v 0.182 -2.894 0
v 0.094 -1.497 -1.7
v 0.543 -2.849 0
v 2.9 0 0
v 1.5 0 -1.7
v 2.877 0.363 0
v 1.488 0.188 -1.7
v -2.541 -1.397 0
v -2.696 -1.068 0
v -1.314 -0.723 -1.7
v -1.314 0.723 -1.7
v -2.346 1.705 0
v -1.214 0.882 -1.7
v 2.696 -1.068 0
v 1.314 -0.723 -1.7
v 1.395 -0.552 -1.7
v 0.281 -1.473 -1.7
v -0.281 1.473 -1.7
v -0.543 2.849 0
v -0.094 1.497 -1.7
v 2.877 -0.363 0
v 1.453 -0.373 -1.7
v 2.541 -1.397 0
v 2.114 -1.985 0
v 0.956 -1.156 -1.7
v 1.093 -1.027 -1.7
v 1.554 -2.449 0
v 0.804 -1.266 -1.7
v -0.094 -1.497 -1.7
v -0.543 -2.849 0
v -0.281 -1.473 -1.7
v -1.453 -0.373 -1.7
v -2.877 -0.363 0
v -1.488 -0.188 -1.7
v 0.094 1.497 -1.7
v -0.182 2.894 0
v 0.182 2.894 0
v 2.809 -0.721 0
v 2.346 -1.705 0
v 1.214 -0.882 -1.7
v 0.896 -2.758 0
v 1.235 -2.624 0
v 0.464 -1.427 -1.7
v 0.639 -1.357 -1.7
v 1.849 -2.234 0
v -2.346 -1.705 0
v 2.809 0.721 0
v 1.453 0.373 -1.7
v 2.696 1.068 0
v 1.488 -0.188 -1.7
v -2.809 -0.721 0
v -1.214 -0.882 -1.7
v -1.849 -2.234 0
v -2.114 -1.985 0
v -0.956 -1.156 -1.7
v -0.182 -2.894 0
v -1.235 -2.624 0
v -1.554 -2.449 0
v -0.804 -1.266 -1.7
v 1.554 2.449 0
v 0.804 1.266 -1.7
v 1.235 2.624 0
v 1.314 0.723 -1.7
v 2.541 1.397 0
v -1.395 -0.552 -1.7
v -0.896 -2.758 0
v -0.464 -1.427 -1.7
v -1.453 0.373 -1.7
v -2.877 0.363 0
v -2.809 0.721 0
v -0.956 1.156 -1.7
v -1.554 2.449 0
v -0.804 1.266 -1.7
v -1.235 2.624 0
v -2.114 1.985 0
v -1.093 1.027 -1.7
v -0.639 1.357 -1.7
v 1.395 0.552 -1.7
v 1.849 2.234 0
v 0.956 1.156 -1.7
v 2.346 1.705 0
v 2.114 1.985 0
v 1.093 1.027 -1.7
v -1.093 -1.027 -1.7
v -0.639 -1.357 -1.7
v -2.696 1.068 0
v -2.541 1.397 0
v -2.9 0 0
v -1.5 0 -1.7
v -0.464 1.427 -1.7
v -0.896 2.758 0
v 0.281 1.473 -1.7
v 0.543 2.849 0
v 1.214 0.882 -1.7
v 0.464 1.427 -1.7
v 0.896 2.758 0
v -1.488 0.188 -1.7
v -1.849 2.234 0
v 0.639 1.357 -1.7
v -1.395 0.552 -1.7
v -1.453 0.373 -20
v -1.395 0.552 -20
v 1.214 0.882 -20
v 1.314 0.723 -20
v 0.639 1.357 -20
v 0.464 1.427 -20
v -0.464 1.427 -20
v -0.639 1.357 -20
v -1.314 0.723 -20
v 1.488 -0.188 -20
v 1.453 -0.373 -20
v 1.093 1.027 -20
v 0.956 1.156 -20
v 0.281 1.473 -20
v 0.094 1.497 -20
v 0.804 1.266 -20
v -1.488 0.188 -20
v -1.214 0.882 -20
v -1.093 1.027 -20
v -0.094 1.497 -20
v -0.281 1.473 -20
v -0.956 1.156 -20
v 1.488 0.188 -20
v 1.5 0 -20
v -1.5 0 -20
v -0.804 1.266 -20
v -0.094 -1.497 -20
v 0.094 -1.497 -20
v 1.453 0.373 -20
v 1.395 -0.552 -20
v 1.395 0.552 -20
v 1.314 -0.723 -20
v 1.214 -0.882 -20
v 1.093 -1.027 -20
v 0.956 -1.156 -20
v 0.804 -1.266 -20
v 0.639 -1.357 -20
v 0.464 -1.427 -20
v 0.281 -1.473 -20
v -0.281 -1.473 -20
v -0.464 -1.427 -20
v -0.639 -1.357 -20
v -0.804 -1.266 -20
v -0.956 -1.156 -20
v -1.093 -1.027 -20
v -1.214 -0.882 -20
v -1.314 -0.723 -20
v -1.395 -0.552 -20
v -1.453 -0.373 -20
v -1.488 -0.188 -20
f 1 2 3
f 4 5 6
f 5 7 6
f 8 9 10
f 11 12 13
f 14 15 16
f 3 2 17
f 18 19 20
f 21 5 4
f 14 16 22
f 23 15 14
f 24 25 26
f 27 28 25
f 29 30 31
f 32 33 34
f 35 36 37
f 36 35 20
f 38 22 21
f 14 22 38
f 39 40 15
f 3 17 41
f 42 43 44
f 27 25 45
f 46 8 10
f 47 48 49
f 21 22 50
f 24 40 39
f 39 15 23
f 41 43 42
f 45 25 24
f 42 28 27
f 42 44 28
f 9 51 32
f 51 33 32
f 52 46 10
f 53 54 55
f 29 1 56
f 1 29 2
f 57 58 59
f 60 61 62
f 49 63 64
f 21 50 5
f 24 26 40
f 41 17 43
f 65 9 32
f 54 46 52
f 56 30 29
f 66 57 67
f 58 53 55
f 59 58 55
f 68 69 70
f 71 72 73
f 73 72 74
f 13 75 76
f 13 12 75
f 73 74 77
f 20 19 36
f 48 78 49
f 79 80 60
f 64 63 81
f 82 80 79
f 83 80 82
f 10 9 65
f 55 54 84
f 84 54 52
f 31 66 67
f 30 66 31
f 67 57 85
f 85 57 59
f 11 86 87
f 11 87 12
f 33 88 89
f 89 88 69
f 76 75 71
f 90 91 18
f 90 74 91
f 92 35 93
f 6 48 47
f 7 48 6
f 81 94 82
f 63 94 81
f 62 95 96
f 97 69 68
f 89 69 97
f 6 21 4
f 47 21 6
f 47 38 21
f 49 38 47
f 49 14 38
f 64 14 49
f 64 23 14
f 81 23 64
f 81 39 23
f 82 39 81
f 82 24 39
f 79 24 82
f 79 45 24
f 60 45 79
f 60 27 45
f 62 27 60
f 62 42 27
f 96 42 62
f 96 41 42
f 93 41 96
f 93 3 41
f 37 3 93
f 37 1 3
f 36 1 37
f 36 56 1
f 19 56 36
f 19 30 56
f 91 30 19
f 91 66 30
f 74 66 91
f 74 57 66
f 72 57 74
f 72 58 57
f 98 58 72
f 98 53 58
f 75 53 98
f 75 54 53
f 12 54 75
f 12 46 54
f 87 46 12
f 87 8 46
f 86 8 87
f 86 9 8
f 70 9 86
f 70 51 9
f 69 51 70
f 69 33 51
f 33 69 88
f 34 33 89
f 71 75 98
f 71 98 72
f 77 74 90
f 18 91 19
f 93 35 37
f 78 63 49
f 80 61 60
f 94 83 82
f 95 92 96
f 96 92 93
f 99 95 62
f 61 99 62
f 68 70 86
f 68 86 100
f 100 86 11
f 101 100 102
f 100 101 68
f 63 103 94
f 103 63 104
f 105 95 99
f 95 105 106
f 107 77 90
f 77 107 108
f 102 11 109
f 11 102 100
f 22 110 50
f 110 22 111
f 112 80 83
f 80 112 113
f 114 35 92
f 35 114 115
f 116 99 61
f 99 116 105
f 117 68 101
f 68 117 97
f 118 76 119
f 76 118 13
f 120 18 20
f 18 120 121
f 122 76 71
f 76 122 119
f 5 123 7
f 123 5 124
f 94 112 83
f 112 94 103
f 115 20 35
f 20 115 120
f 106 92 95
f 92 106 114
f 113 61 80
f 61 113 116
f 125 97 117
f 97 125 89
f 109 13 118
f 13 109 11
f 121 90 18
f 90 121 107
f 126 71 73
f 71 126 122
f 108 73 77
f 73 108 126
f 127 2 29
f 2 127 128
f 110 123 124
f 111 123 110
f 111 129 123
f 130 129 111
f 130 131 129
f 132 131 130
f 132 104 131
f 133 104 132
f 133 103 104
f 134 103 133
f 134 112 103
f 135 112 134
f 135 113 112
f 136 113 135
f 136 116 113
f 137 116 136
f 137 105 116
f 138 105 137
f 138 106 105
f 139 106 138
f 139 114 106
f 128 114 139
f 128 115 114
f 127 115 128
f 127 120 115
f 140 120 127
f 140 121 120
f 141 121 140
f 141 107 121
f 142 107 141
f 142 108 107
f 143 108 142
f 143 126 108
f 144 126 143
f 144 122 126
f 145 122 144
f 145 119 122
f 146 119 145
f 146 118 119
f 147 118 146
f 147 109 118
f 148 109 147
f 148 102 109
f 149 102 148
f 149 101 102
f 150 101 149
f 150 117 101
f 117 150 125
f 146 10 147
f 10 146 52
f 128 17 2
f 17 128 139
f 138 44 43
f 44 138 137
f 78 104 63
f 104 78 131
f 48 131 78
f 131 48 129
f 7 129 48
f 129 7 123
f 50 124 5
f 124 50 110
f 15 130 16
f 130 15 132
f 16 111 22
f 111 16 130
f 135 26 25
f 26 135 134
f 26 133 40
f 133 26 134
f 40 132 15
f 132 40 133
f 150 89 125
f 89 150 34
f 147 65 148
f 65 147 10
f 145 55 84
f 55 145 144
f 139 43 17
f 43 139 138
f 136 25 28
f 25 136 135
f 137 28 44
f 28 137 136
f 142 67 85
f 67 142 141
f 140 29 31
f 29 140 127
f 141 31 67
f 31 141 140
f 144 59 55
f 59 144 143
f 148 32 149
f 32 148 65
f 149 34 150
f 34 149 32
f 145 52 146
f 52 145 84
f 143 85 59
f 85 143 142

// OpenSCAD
// Generated by SolidPython 1.1.3 on 2023-03-13 21:06:12
$fn = 50;


difference() {
	union() {
		translate(v = [0, 0, -1.7000000000]) {
			rotate(a = [0, 0, 0]) {
				cylinder(h = 1.7000000000, r1 = 1.5000000000, r2 = 2.9000000000);
			}
		}
		translate(v = [0, 0, -20]) {
			rotate(a = [0, 0, 0]) {
				cylinder(h = 20, r = 1.5000000000);
			}
		}
	}
	union();
}
/***********************************************
*********      SolidPython code:      **********
************************************************
 
from solid import *
import os
import subprocess

import oomB

import opsc_library_gen

mode = "laser"
#mode = "3d_print"

defined_objects = {}

radius_dict = {}
countersunk_dict = {}


def set_mode(m):
    global mode
    mode = m
    radius_dict['M6'] = 6.5/2
    radius_dict['M3'] = 3.3/2
    if mode == "laser":
        radius_dict['M6'] = 6/2
        radius_dict['M3'] = 3/2

    countersunk_dict['M3'] = {}
    countersunk_dict['M3']['little_rad'] = radius_dict['M3']
    countersunk_dict['M3']['big_rad'] = (5.5+0.6)/2
    if mode == "laser":
        countersunk_dict['M3']['big_rad'] = (4.75+0.6)/2
        countersunk_dict['M3']['little_rad'] = (4.75+0.6)/2

    countersunk_dict['M3']['height'] = 1.7


def opsc_make_object(filename, objects, save_type="none",resolution=50, layers = 1, tilediff = 200, mode="laser", overwrite=True):
    if overwrite or not os.path.exists(filename):
        set_mode(mode)
        save_type = save_type.lower()
        os.makedirs(os.path.dirname(filename), exist_ok=True)
        final_object = opsc_get_object(objects, mode = mode)
        # Save the final object to the specified filename    
        scad_render_to_file(final_object, filename, file_header='$fn = %s;' % resolution, include_orig_code=True)
        if save_type == "all":
            saveToAll(filename)
        elif save_type == "dxf":
            saveToDxf(filename)
        if mode == "laser":
            filename_laser = filename.replace(".scad","-flat.scad")
            scad_render_to_file(getLaser(final_object, layers=layers, tilediff=tilediff), filename_laser, file_header='$fn = %s;' % resolution, include_orig_code=True)
            if save_type == "all":
                saveToAll(filename_laser)
            elif save_type == "dxf":
                saveToDxf(filename_laser)


def opsc_get_object(objects, mode = "laser"):
    # Create the solidpython objects only include the positive objects and if they don't have inclusion or their inclusion is either all or mode
    # Initialize an empty list to store the results
    positive_objects = []

    # Iterate over the "objects" list
    for obj in objects:
        # Check if the current object has a "type" key with a value of "positive"
        if obj['type'] == 'positive':
            # Check if the current object has an "inclusion" key and its value matches "mode",
            # or if the current object does not have an "inclusion" key at all
            if not 'inclusion' in obj or obj['inclusion'] == "all" or obj['inclusion'] == mode:
                # Call the "get_opsc_item" function with the current object as an argument
                opsc_item = get_opsc_item(obj)
                # Add the result to the "positive_objects" list
                positive_objects.append(opsc_item)
# Initialize an empty list to store the results
    negative_objects = []

    # Iterate over the "objects" list
    for obj in objects:
        # Check if the current object has a "type" key with a value of "negative"
        if obj['type'] == 'negative':
            # Check if the current object has an "inclusion" key and its value matches "mode",
            # or if the current object does not have an "inclusion" key at all
            if not 'inclusion' in obj or obj['inclusion'] == "all" or obj['inclusion'] == mode:
                # Call the "get_opsc_item" function with the current object as an argument
                opsc_item = get_opsc_item(obj)
                # Add the result to the "negative_objects" list
                negative_objects.append(opsc_item)
    
    #positive_objects = [get_opsc_item(obj) for obj in objects if obj['type'] == 'positive']
    #negative_objects = [get_opsc_item(obj) for obj in objects if obj['type'] == 'negative']
    # Union the positive objects
    positive_object = union()(*positive_objects)
    # Union the negative objects
    negative_object = union()(*negative_objects)
    # Create the final object by subtracting the negative objects from the positive objects
    return difference()(positive_object, negative_object)

def get_opsc_item(params):
    # A dictionary to map radius string values to numerical values
    #radius_dict = {'small': 5, 'medium': 10, 'large': 15}
    # An array of function names for basic shapes
    basic_shapes = ['cube', 'sphere', 'cylinder']
    
    # An array of function names for other shapes
    other_shapes = ['hole', 'slot', 'rounded_rectangle', 'countersunk', 'polyg']
    


    # Convert radius to r if present, and remove radius from the params dictionary
    if 'radius' in params:
        if isinstance(params['radius'], str):
            # Use the radius_dict to map the radius string value to a numerical value
            params['r'] = radius_dict[params['radius']]
        else:
            params['r'] = params['radius']
        del params['radius']
    

    # Check if the object type is a basic shape
    if params['shape'] in basic_shapes:
        # Remove shape and unexpected dictionary values
        allowed_keys = {'size', 'r', 'r1', 'r2', 'd', 'h', 'rw', 'rh', 'dw', 'dh'}
        shape_params = {k: v for k, v in params.items() if k in allowed_keys}

        #params['m'] = "#"
        ###split for adding modifier
        try:
            m = params['m']
            func = globals()[params['shape']]
            return_value = get_opsc_transform(params,func(**shape_params))
            return_value = (return_value).set_modifier(m)
            return return_value
        except KeyError as e:
            return get_opsc_transform(params,globals()[params['shape']](**shape_params))
        
    elif params['shape'] == 'polygon':
        # Remove shape and unexpected dictionary values
        h  = params['height']
        allowed_keys = {'points'}
        shape_params = {k: v for k, v in params.items() if k in allowed_keys}

        # Call the corresponding function for the shape parameter, using ** notation to pass the shape_params dictionary as keyword arguments
        params["rot"] = [0,0,0]        
        try:
            m = params['m']
            func = globals()[params['shape']]
            return_value = get_opsc_transform(params,linear_extrude(h)(globals()[params['shape']](**shape_params)))
            return_value = (return_value).set_modifier(m)
            return return_value
        except KeyError as e:
            return_value = get_opsc_transform(params,linear_extrude(h)(globals()[params['shape']](**shape_params)))
            return_value = (return_value)
            return return_value


    # If the object type is not a basic shape, check if it's a defined object or one of the other shapes
    elif params['shape'] in other_shapes:
        # Call the corresponding function for the shape parameter, passing the params dictionary as an argument
        p2 = copy.deepcopy(params)
        p2["pos"] = [0,0,0]
        return get_opsc_transform(params,globals()[params['shape']](p2))
    
    # If the object is not a basic shape or a defined object, try to import it from a .scad file
    else:
        obj = defined_objects[params['shape']]
        return get_opsc_transform(params,obj)

def get_opsc_transform(params, solid_obj):
    # Rotate the object based on the 'rot' field in the params dictionary, or the 'rotX', 'rotY', and 'rotZ' fields if 'rot' is not present
    rot = params.get('rot', [])
    if rot:
        rotX, rotY, rotZ = rot
    else:
        rotX = params.get('rotX', 0)
        rotY = params.get('rotY', 0)
        rotZ = params.get('rotZ', 0)
    solid_obj = rotate([rotX, rotY, rotZ])(solid_obj)

    # Translate the object based on the 'pos' field in the params dictionary, or the 'x', 'y', and 'z' fields if 'pos' is not present
    pos = params.get('pos', [])
    if pos:
        x, y, z = pos
    else:
        x = params.get('x', 0)
        y = params.get('y', 0)
        z = params.get('z', 0)
    solid_obj = translate([x, y, z])(solid_obj)
    return solid_obj


import random

def opsc_easy_array(type, shape, repeats, pos_start, shift_arr, **kwargs):
    for i in range(0,3):
        repeats.append(1)
        pos_start.append(0)
        shift_arr.append(0)
    return_objects = []

    for x in range(0,repeats[0]):
        for y in range(0,repeats[1]):
            for z in range(0,repeats[2]):
                return_objects.append(opsc_easy(type, shape, pos=[pos_start[0]+x*shift_arr[0],pos_start[1]+y*shift_arr[1],pos_start[2]+z*shift_arr[2]], **kwargs))
    return return_objects                



def opsc_easy(type, shape, **kwargs):
    obj = {
        'type': type,
        'shape': shape
    }
    for param in ['size', 'r', 'r1', 'r2', 'd', 'h', 'rw', 'rh', 'dw', 'dh', 'pos', 'x', 'y', 'z', 'rot', 'rotX', 'rotY', 'rotZ', "w", "inclusion", 'sides', 'height', "m"]:
        if param in kwargs:
            obj[param] = kwargs[param]
    return obj

def hole(params):
    p2 = copy.deepcopy(params)  
    # Check if the radius is a string and replace it with the corresponding value from the dictionary
    if isinstance(p2['r'], str):
        p2['r'] = radius_dict[p2['r']]
    
    # Set the height to 100 if not specified
    if 'h' not in p2:
        p2['h'] = 100
        p2["pos"] = [0,0,-50]
    p2["center"] = True
    # Create the cylinder object
    p2["shape"] = "cylinder"
    p2["type"] = "positive"

    return get_opsc_item(p2)

import copy

def countersunk(params):
    p2 = copy.deepcopy(params)
    counter_rad = p2['r']
    p2['r'] = radius_dict[p2['r']]
    hp = copy.deepcopy(p2)
    hp["type"] = "positive"
    hp["shape"] = "hole"
    del hp["rot"]
    hol = get_opsc_item(hp)
    
    cp = copy.deepcopy(p2)
    cp["h"] = countersunk_dict[counter_rad]["height"]
    cp["r2"] = countersunk_dict[counter_rad]["little_rad"]
    cp["r1"] = countersunk_dict[counter_rad]["big_rad"]
    del cp["r"]
    del cp["rot"]
    cp["type"] = "positive"
    cp["shape"] = "cylinder"
    cp["pos"] = [0,0,0]

    top = get_opsc_item(cp)
    return union()(hol,top)



def slot(params):  
    p2 = copy.deepcopy(params) 
    if isinstance(p2['r'], str):
        p2['r'] = radius_dict[p2['r']]
    p2["type"] = "positive"
    p2["shape"] = "hole"
    del p2["rot"]
    p2["pos"] = [0,0,0]
    left = copy.deepcopy(p2)
    right = copy.deepcopy(p2)
    left["pos"][0] = p2["w"] / 2 - p2["r"] 
    
    right["pos"][0] = -p2["w"] / 2 + p2["r"] 
    pass
    leftObj = get_opsc_item(left)
    rightObj = get_opsc_item(right)
    return hull()(leftObj, rightObj)

def rounded_rectangle(params):   
    p2 = copy.deepcopy(params) 
    p2["h"] = p2["size"][2]
    p2["pos"] = p2.get("pos", [0, 0, 0]) 
    p2["type"] = "positive"
    p2["shape"] = "hole"
    p2["pos"] = [0,0,0]
    
    if 'rot' in p2:
        del p2["rot"]   
    if 'r' not in p2:
        p2["r"] = 5 
    tl = copy.deepcopy(p2)
    tr = copy.deepcopy(p2)
    bl = copy.deepcopy(p2)
    br = copy.deepcopy(p2)
    tl["pos"][0] = -(p2["size"][0] - p2["r"]*2)/2
    tl["pos"][1] = (p2["size"][1] - p2["r"]*2)/2
    tr["pos"][0] = (p2["size"][0] - p2["r"]*2)/2
    tr["pos"][1] = (p2["size"][1] - p2["r"]*2)/2
    bl["pos"][0] = -(p2["size"][0] - p2["r"]*2)/2
    bl["pos"][1] = -(p2["size"][1] - p2["r"]*2)/2
    br["pos"][0] = (p2["size"][0] - p2["r"]*2)/2
    br["pos"][1] = -(p2["size"][1] - p2["r"]*2)/2
    del tl["size"]
    del tr["size"]
    del bl["size"]
    del br["size"]
    tlo = get_opsc_item(tl)
    tro = get_opsc_item(tr)
    blo = get_opsc_item(bl)
    bro = get_opsc_item(br)    
    return hull()(tlo, tro, blo, bro)



def polyg(params):
    p2 = copy.deepcopy(params) 
    p2["type"] = "positive"
    p2["shape"] = "polygon"
    p2["pos"] = [0,0,0]
    sides = p2["sides"]
    radius = p2["r"]    
    angles = [i * 360 / sides for i in range(sides)]
    points = regular_polygon(sides, radius)
    
    p2["points"] = points
    return get_opsc_item(p2)

import math

def regular_polygon(num_sides, radius):
    # Calculate the angle between each side
    angle = 2 * math.pi / num_sides

    # Calculate the points of the polygon
    points = []
    for i in range(num_sides):
        x = radius * math.cos(i * angle)
        y = radius * math.sin(i * angle)
        points.append((x, y))
    return points

def import_scad_object(filename):
    # Import the .scad file and convert it to a solidpython object
    #filename = "parts"
    obj = import_scad(filename)
    return obj.main()



import os
import solid as solidpython

# A dictionary to store the defined objects


def load_scad_objects():
    opsc_library_gen.gen_library(defined_objects)

import random

def test(num_objects):
    objects = []
    for i in range(num_objects):
        # Choose a random shape
        #shape = random.choice(['cube', 'sphere', 'cylinder', 'hole', 'slot', "rounded_rectangle"])
        shape = random.choice(["rounded_rectangle"])

        # Choose a random type
        type = random.choice(['positive', 'negative'])
        
        # Create an empty object dictionary
        obj = {'shape': shape, 'type': type}
        
        # Set shape-specific parameters
        if obj['shape'] in ['cube']:
            obj['size'] =  [random.uniform(5, 15), random.uniform(5, 15), random.uniform(5, 15)]
        if obj['shape'] in ['rounded_rectangle']:
            obj['size'] =  [random.uniform(5, 15), random.uniform(5, 15), random.uniform(5, 15)]
            obj['r'] = random.uniform(0.5, 5)
        elif obj['shape'] == 'sphere':
            obj['r'] = random.uniform(5, 15)
        elif obj['shape'] in ['cylinder', 'hole']:
            obj['r'] = random.uniform(0.5, 5)
            obj['h'] = random.uniform(5, 15)
        elif obj['shape'] == 'slot':
            obj['r'] = random.uniform(0.5, 5)
            obj['h'] = random.uniform(5, 15)
            obj['w'] = random.uniform(5, 15)
        
        # Set a random position and rotation
        obj['pos'] = [random.uniform(-20, 20), random.uniform(-20, 20), random.uniform(-20, 20)]
        obj['rot'] = [random.uniform(-180, 180), random.uniform(-180, 180), random.uniform(-180, 180)]
        
        # Add the object to the list
        objects.append(obj)
    return objects

####### old file saving
def saveToAll(fileIn):
    saveToStl(fileIn)
    saveToDxf(fileIn)
    saveToPng(fileIn)
    saveToSvg(fileIn)

def saveToDxf(fileIn, fileOut="", copy_to_laser=True):
    if fileOut == "":
        fileOut = fileIn.replace(".scad",".dxf")
    saveToFile(fileIn, fileOut)


    
def saveToPng(fileIn, fileOut="",extra="--render"):
    if fileOut == "":
        fileOut = fileIn.replace(".scad",".png")
    saveToFile(fileIn, fileOut)

def saveToStl(fileIn, fileOut=""):
    if fileOut == "":
        fileOut = fileIn.replace(".scad",".stl")
    saveToFile(fileIn, fileOut)
    
def saveToSvg(fileIn, fileOut=""):
    if fileOut == "":
        fileOut = fileIn.replace(".scad",".svg")
    saveToFile(fileIn, fileOut)

def saveToFile(fileIn, fileOut,extra=""):
    #extra = extra + " --colorscheme Tomorrow"

    launchStr = 'openscad -o "' + fileOut + '"' + extra + ' "' + fileIn + '"'
    if ".png" in fileOut:
        launchStr = launchStr + " --render"
    print("            saveToFile launch string: " + launchStr)
    subprocess.run(launchStr)
    x=0

def getLaser(final_object,start=1.5,layers=1,thickness=3,tilediff=200):
        rv= []

        for x in range(layers):
            rv.append(translate([0,x*tilediff,0])(
                    projection()(
                        intersection()(translate([-500,-500,start+x*thickness])(cube(size=[1000,1000,0.1])),
                            final_object
                        )
                    )
            )
            )
            
        return union()(rv)

set_mode("laser")
load_scad_objects() 
 
************************************************/
